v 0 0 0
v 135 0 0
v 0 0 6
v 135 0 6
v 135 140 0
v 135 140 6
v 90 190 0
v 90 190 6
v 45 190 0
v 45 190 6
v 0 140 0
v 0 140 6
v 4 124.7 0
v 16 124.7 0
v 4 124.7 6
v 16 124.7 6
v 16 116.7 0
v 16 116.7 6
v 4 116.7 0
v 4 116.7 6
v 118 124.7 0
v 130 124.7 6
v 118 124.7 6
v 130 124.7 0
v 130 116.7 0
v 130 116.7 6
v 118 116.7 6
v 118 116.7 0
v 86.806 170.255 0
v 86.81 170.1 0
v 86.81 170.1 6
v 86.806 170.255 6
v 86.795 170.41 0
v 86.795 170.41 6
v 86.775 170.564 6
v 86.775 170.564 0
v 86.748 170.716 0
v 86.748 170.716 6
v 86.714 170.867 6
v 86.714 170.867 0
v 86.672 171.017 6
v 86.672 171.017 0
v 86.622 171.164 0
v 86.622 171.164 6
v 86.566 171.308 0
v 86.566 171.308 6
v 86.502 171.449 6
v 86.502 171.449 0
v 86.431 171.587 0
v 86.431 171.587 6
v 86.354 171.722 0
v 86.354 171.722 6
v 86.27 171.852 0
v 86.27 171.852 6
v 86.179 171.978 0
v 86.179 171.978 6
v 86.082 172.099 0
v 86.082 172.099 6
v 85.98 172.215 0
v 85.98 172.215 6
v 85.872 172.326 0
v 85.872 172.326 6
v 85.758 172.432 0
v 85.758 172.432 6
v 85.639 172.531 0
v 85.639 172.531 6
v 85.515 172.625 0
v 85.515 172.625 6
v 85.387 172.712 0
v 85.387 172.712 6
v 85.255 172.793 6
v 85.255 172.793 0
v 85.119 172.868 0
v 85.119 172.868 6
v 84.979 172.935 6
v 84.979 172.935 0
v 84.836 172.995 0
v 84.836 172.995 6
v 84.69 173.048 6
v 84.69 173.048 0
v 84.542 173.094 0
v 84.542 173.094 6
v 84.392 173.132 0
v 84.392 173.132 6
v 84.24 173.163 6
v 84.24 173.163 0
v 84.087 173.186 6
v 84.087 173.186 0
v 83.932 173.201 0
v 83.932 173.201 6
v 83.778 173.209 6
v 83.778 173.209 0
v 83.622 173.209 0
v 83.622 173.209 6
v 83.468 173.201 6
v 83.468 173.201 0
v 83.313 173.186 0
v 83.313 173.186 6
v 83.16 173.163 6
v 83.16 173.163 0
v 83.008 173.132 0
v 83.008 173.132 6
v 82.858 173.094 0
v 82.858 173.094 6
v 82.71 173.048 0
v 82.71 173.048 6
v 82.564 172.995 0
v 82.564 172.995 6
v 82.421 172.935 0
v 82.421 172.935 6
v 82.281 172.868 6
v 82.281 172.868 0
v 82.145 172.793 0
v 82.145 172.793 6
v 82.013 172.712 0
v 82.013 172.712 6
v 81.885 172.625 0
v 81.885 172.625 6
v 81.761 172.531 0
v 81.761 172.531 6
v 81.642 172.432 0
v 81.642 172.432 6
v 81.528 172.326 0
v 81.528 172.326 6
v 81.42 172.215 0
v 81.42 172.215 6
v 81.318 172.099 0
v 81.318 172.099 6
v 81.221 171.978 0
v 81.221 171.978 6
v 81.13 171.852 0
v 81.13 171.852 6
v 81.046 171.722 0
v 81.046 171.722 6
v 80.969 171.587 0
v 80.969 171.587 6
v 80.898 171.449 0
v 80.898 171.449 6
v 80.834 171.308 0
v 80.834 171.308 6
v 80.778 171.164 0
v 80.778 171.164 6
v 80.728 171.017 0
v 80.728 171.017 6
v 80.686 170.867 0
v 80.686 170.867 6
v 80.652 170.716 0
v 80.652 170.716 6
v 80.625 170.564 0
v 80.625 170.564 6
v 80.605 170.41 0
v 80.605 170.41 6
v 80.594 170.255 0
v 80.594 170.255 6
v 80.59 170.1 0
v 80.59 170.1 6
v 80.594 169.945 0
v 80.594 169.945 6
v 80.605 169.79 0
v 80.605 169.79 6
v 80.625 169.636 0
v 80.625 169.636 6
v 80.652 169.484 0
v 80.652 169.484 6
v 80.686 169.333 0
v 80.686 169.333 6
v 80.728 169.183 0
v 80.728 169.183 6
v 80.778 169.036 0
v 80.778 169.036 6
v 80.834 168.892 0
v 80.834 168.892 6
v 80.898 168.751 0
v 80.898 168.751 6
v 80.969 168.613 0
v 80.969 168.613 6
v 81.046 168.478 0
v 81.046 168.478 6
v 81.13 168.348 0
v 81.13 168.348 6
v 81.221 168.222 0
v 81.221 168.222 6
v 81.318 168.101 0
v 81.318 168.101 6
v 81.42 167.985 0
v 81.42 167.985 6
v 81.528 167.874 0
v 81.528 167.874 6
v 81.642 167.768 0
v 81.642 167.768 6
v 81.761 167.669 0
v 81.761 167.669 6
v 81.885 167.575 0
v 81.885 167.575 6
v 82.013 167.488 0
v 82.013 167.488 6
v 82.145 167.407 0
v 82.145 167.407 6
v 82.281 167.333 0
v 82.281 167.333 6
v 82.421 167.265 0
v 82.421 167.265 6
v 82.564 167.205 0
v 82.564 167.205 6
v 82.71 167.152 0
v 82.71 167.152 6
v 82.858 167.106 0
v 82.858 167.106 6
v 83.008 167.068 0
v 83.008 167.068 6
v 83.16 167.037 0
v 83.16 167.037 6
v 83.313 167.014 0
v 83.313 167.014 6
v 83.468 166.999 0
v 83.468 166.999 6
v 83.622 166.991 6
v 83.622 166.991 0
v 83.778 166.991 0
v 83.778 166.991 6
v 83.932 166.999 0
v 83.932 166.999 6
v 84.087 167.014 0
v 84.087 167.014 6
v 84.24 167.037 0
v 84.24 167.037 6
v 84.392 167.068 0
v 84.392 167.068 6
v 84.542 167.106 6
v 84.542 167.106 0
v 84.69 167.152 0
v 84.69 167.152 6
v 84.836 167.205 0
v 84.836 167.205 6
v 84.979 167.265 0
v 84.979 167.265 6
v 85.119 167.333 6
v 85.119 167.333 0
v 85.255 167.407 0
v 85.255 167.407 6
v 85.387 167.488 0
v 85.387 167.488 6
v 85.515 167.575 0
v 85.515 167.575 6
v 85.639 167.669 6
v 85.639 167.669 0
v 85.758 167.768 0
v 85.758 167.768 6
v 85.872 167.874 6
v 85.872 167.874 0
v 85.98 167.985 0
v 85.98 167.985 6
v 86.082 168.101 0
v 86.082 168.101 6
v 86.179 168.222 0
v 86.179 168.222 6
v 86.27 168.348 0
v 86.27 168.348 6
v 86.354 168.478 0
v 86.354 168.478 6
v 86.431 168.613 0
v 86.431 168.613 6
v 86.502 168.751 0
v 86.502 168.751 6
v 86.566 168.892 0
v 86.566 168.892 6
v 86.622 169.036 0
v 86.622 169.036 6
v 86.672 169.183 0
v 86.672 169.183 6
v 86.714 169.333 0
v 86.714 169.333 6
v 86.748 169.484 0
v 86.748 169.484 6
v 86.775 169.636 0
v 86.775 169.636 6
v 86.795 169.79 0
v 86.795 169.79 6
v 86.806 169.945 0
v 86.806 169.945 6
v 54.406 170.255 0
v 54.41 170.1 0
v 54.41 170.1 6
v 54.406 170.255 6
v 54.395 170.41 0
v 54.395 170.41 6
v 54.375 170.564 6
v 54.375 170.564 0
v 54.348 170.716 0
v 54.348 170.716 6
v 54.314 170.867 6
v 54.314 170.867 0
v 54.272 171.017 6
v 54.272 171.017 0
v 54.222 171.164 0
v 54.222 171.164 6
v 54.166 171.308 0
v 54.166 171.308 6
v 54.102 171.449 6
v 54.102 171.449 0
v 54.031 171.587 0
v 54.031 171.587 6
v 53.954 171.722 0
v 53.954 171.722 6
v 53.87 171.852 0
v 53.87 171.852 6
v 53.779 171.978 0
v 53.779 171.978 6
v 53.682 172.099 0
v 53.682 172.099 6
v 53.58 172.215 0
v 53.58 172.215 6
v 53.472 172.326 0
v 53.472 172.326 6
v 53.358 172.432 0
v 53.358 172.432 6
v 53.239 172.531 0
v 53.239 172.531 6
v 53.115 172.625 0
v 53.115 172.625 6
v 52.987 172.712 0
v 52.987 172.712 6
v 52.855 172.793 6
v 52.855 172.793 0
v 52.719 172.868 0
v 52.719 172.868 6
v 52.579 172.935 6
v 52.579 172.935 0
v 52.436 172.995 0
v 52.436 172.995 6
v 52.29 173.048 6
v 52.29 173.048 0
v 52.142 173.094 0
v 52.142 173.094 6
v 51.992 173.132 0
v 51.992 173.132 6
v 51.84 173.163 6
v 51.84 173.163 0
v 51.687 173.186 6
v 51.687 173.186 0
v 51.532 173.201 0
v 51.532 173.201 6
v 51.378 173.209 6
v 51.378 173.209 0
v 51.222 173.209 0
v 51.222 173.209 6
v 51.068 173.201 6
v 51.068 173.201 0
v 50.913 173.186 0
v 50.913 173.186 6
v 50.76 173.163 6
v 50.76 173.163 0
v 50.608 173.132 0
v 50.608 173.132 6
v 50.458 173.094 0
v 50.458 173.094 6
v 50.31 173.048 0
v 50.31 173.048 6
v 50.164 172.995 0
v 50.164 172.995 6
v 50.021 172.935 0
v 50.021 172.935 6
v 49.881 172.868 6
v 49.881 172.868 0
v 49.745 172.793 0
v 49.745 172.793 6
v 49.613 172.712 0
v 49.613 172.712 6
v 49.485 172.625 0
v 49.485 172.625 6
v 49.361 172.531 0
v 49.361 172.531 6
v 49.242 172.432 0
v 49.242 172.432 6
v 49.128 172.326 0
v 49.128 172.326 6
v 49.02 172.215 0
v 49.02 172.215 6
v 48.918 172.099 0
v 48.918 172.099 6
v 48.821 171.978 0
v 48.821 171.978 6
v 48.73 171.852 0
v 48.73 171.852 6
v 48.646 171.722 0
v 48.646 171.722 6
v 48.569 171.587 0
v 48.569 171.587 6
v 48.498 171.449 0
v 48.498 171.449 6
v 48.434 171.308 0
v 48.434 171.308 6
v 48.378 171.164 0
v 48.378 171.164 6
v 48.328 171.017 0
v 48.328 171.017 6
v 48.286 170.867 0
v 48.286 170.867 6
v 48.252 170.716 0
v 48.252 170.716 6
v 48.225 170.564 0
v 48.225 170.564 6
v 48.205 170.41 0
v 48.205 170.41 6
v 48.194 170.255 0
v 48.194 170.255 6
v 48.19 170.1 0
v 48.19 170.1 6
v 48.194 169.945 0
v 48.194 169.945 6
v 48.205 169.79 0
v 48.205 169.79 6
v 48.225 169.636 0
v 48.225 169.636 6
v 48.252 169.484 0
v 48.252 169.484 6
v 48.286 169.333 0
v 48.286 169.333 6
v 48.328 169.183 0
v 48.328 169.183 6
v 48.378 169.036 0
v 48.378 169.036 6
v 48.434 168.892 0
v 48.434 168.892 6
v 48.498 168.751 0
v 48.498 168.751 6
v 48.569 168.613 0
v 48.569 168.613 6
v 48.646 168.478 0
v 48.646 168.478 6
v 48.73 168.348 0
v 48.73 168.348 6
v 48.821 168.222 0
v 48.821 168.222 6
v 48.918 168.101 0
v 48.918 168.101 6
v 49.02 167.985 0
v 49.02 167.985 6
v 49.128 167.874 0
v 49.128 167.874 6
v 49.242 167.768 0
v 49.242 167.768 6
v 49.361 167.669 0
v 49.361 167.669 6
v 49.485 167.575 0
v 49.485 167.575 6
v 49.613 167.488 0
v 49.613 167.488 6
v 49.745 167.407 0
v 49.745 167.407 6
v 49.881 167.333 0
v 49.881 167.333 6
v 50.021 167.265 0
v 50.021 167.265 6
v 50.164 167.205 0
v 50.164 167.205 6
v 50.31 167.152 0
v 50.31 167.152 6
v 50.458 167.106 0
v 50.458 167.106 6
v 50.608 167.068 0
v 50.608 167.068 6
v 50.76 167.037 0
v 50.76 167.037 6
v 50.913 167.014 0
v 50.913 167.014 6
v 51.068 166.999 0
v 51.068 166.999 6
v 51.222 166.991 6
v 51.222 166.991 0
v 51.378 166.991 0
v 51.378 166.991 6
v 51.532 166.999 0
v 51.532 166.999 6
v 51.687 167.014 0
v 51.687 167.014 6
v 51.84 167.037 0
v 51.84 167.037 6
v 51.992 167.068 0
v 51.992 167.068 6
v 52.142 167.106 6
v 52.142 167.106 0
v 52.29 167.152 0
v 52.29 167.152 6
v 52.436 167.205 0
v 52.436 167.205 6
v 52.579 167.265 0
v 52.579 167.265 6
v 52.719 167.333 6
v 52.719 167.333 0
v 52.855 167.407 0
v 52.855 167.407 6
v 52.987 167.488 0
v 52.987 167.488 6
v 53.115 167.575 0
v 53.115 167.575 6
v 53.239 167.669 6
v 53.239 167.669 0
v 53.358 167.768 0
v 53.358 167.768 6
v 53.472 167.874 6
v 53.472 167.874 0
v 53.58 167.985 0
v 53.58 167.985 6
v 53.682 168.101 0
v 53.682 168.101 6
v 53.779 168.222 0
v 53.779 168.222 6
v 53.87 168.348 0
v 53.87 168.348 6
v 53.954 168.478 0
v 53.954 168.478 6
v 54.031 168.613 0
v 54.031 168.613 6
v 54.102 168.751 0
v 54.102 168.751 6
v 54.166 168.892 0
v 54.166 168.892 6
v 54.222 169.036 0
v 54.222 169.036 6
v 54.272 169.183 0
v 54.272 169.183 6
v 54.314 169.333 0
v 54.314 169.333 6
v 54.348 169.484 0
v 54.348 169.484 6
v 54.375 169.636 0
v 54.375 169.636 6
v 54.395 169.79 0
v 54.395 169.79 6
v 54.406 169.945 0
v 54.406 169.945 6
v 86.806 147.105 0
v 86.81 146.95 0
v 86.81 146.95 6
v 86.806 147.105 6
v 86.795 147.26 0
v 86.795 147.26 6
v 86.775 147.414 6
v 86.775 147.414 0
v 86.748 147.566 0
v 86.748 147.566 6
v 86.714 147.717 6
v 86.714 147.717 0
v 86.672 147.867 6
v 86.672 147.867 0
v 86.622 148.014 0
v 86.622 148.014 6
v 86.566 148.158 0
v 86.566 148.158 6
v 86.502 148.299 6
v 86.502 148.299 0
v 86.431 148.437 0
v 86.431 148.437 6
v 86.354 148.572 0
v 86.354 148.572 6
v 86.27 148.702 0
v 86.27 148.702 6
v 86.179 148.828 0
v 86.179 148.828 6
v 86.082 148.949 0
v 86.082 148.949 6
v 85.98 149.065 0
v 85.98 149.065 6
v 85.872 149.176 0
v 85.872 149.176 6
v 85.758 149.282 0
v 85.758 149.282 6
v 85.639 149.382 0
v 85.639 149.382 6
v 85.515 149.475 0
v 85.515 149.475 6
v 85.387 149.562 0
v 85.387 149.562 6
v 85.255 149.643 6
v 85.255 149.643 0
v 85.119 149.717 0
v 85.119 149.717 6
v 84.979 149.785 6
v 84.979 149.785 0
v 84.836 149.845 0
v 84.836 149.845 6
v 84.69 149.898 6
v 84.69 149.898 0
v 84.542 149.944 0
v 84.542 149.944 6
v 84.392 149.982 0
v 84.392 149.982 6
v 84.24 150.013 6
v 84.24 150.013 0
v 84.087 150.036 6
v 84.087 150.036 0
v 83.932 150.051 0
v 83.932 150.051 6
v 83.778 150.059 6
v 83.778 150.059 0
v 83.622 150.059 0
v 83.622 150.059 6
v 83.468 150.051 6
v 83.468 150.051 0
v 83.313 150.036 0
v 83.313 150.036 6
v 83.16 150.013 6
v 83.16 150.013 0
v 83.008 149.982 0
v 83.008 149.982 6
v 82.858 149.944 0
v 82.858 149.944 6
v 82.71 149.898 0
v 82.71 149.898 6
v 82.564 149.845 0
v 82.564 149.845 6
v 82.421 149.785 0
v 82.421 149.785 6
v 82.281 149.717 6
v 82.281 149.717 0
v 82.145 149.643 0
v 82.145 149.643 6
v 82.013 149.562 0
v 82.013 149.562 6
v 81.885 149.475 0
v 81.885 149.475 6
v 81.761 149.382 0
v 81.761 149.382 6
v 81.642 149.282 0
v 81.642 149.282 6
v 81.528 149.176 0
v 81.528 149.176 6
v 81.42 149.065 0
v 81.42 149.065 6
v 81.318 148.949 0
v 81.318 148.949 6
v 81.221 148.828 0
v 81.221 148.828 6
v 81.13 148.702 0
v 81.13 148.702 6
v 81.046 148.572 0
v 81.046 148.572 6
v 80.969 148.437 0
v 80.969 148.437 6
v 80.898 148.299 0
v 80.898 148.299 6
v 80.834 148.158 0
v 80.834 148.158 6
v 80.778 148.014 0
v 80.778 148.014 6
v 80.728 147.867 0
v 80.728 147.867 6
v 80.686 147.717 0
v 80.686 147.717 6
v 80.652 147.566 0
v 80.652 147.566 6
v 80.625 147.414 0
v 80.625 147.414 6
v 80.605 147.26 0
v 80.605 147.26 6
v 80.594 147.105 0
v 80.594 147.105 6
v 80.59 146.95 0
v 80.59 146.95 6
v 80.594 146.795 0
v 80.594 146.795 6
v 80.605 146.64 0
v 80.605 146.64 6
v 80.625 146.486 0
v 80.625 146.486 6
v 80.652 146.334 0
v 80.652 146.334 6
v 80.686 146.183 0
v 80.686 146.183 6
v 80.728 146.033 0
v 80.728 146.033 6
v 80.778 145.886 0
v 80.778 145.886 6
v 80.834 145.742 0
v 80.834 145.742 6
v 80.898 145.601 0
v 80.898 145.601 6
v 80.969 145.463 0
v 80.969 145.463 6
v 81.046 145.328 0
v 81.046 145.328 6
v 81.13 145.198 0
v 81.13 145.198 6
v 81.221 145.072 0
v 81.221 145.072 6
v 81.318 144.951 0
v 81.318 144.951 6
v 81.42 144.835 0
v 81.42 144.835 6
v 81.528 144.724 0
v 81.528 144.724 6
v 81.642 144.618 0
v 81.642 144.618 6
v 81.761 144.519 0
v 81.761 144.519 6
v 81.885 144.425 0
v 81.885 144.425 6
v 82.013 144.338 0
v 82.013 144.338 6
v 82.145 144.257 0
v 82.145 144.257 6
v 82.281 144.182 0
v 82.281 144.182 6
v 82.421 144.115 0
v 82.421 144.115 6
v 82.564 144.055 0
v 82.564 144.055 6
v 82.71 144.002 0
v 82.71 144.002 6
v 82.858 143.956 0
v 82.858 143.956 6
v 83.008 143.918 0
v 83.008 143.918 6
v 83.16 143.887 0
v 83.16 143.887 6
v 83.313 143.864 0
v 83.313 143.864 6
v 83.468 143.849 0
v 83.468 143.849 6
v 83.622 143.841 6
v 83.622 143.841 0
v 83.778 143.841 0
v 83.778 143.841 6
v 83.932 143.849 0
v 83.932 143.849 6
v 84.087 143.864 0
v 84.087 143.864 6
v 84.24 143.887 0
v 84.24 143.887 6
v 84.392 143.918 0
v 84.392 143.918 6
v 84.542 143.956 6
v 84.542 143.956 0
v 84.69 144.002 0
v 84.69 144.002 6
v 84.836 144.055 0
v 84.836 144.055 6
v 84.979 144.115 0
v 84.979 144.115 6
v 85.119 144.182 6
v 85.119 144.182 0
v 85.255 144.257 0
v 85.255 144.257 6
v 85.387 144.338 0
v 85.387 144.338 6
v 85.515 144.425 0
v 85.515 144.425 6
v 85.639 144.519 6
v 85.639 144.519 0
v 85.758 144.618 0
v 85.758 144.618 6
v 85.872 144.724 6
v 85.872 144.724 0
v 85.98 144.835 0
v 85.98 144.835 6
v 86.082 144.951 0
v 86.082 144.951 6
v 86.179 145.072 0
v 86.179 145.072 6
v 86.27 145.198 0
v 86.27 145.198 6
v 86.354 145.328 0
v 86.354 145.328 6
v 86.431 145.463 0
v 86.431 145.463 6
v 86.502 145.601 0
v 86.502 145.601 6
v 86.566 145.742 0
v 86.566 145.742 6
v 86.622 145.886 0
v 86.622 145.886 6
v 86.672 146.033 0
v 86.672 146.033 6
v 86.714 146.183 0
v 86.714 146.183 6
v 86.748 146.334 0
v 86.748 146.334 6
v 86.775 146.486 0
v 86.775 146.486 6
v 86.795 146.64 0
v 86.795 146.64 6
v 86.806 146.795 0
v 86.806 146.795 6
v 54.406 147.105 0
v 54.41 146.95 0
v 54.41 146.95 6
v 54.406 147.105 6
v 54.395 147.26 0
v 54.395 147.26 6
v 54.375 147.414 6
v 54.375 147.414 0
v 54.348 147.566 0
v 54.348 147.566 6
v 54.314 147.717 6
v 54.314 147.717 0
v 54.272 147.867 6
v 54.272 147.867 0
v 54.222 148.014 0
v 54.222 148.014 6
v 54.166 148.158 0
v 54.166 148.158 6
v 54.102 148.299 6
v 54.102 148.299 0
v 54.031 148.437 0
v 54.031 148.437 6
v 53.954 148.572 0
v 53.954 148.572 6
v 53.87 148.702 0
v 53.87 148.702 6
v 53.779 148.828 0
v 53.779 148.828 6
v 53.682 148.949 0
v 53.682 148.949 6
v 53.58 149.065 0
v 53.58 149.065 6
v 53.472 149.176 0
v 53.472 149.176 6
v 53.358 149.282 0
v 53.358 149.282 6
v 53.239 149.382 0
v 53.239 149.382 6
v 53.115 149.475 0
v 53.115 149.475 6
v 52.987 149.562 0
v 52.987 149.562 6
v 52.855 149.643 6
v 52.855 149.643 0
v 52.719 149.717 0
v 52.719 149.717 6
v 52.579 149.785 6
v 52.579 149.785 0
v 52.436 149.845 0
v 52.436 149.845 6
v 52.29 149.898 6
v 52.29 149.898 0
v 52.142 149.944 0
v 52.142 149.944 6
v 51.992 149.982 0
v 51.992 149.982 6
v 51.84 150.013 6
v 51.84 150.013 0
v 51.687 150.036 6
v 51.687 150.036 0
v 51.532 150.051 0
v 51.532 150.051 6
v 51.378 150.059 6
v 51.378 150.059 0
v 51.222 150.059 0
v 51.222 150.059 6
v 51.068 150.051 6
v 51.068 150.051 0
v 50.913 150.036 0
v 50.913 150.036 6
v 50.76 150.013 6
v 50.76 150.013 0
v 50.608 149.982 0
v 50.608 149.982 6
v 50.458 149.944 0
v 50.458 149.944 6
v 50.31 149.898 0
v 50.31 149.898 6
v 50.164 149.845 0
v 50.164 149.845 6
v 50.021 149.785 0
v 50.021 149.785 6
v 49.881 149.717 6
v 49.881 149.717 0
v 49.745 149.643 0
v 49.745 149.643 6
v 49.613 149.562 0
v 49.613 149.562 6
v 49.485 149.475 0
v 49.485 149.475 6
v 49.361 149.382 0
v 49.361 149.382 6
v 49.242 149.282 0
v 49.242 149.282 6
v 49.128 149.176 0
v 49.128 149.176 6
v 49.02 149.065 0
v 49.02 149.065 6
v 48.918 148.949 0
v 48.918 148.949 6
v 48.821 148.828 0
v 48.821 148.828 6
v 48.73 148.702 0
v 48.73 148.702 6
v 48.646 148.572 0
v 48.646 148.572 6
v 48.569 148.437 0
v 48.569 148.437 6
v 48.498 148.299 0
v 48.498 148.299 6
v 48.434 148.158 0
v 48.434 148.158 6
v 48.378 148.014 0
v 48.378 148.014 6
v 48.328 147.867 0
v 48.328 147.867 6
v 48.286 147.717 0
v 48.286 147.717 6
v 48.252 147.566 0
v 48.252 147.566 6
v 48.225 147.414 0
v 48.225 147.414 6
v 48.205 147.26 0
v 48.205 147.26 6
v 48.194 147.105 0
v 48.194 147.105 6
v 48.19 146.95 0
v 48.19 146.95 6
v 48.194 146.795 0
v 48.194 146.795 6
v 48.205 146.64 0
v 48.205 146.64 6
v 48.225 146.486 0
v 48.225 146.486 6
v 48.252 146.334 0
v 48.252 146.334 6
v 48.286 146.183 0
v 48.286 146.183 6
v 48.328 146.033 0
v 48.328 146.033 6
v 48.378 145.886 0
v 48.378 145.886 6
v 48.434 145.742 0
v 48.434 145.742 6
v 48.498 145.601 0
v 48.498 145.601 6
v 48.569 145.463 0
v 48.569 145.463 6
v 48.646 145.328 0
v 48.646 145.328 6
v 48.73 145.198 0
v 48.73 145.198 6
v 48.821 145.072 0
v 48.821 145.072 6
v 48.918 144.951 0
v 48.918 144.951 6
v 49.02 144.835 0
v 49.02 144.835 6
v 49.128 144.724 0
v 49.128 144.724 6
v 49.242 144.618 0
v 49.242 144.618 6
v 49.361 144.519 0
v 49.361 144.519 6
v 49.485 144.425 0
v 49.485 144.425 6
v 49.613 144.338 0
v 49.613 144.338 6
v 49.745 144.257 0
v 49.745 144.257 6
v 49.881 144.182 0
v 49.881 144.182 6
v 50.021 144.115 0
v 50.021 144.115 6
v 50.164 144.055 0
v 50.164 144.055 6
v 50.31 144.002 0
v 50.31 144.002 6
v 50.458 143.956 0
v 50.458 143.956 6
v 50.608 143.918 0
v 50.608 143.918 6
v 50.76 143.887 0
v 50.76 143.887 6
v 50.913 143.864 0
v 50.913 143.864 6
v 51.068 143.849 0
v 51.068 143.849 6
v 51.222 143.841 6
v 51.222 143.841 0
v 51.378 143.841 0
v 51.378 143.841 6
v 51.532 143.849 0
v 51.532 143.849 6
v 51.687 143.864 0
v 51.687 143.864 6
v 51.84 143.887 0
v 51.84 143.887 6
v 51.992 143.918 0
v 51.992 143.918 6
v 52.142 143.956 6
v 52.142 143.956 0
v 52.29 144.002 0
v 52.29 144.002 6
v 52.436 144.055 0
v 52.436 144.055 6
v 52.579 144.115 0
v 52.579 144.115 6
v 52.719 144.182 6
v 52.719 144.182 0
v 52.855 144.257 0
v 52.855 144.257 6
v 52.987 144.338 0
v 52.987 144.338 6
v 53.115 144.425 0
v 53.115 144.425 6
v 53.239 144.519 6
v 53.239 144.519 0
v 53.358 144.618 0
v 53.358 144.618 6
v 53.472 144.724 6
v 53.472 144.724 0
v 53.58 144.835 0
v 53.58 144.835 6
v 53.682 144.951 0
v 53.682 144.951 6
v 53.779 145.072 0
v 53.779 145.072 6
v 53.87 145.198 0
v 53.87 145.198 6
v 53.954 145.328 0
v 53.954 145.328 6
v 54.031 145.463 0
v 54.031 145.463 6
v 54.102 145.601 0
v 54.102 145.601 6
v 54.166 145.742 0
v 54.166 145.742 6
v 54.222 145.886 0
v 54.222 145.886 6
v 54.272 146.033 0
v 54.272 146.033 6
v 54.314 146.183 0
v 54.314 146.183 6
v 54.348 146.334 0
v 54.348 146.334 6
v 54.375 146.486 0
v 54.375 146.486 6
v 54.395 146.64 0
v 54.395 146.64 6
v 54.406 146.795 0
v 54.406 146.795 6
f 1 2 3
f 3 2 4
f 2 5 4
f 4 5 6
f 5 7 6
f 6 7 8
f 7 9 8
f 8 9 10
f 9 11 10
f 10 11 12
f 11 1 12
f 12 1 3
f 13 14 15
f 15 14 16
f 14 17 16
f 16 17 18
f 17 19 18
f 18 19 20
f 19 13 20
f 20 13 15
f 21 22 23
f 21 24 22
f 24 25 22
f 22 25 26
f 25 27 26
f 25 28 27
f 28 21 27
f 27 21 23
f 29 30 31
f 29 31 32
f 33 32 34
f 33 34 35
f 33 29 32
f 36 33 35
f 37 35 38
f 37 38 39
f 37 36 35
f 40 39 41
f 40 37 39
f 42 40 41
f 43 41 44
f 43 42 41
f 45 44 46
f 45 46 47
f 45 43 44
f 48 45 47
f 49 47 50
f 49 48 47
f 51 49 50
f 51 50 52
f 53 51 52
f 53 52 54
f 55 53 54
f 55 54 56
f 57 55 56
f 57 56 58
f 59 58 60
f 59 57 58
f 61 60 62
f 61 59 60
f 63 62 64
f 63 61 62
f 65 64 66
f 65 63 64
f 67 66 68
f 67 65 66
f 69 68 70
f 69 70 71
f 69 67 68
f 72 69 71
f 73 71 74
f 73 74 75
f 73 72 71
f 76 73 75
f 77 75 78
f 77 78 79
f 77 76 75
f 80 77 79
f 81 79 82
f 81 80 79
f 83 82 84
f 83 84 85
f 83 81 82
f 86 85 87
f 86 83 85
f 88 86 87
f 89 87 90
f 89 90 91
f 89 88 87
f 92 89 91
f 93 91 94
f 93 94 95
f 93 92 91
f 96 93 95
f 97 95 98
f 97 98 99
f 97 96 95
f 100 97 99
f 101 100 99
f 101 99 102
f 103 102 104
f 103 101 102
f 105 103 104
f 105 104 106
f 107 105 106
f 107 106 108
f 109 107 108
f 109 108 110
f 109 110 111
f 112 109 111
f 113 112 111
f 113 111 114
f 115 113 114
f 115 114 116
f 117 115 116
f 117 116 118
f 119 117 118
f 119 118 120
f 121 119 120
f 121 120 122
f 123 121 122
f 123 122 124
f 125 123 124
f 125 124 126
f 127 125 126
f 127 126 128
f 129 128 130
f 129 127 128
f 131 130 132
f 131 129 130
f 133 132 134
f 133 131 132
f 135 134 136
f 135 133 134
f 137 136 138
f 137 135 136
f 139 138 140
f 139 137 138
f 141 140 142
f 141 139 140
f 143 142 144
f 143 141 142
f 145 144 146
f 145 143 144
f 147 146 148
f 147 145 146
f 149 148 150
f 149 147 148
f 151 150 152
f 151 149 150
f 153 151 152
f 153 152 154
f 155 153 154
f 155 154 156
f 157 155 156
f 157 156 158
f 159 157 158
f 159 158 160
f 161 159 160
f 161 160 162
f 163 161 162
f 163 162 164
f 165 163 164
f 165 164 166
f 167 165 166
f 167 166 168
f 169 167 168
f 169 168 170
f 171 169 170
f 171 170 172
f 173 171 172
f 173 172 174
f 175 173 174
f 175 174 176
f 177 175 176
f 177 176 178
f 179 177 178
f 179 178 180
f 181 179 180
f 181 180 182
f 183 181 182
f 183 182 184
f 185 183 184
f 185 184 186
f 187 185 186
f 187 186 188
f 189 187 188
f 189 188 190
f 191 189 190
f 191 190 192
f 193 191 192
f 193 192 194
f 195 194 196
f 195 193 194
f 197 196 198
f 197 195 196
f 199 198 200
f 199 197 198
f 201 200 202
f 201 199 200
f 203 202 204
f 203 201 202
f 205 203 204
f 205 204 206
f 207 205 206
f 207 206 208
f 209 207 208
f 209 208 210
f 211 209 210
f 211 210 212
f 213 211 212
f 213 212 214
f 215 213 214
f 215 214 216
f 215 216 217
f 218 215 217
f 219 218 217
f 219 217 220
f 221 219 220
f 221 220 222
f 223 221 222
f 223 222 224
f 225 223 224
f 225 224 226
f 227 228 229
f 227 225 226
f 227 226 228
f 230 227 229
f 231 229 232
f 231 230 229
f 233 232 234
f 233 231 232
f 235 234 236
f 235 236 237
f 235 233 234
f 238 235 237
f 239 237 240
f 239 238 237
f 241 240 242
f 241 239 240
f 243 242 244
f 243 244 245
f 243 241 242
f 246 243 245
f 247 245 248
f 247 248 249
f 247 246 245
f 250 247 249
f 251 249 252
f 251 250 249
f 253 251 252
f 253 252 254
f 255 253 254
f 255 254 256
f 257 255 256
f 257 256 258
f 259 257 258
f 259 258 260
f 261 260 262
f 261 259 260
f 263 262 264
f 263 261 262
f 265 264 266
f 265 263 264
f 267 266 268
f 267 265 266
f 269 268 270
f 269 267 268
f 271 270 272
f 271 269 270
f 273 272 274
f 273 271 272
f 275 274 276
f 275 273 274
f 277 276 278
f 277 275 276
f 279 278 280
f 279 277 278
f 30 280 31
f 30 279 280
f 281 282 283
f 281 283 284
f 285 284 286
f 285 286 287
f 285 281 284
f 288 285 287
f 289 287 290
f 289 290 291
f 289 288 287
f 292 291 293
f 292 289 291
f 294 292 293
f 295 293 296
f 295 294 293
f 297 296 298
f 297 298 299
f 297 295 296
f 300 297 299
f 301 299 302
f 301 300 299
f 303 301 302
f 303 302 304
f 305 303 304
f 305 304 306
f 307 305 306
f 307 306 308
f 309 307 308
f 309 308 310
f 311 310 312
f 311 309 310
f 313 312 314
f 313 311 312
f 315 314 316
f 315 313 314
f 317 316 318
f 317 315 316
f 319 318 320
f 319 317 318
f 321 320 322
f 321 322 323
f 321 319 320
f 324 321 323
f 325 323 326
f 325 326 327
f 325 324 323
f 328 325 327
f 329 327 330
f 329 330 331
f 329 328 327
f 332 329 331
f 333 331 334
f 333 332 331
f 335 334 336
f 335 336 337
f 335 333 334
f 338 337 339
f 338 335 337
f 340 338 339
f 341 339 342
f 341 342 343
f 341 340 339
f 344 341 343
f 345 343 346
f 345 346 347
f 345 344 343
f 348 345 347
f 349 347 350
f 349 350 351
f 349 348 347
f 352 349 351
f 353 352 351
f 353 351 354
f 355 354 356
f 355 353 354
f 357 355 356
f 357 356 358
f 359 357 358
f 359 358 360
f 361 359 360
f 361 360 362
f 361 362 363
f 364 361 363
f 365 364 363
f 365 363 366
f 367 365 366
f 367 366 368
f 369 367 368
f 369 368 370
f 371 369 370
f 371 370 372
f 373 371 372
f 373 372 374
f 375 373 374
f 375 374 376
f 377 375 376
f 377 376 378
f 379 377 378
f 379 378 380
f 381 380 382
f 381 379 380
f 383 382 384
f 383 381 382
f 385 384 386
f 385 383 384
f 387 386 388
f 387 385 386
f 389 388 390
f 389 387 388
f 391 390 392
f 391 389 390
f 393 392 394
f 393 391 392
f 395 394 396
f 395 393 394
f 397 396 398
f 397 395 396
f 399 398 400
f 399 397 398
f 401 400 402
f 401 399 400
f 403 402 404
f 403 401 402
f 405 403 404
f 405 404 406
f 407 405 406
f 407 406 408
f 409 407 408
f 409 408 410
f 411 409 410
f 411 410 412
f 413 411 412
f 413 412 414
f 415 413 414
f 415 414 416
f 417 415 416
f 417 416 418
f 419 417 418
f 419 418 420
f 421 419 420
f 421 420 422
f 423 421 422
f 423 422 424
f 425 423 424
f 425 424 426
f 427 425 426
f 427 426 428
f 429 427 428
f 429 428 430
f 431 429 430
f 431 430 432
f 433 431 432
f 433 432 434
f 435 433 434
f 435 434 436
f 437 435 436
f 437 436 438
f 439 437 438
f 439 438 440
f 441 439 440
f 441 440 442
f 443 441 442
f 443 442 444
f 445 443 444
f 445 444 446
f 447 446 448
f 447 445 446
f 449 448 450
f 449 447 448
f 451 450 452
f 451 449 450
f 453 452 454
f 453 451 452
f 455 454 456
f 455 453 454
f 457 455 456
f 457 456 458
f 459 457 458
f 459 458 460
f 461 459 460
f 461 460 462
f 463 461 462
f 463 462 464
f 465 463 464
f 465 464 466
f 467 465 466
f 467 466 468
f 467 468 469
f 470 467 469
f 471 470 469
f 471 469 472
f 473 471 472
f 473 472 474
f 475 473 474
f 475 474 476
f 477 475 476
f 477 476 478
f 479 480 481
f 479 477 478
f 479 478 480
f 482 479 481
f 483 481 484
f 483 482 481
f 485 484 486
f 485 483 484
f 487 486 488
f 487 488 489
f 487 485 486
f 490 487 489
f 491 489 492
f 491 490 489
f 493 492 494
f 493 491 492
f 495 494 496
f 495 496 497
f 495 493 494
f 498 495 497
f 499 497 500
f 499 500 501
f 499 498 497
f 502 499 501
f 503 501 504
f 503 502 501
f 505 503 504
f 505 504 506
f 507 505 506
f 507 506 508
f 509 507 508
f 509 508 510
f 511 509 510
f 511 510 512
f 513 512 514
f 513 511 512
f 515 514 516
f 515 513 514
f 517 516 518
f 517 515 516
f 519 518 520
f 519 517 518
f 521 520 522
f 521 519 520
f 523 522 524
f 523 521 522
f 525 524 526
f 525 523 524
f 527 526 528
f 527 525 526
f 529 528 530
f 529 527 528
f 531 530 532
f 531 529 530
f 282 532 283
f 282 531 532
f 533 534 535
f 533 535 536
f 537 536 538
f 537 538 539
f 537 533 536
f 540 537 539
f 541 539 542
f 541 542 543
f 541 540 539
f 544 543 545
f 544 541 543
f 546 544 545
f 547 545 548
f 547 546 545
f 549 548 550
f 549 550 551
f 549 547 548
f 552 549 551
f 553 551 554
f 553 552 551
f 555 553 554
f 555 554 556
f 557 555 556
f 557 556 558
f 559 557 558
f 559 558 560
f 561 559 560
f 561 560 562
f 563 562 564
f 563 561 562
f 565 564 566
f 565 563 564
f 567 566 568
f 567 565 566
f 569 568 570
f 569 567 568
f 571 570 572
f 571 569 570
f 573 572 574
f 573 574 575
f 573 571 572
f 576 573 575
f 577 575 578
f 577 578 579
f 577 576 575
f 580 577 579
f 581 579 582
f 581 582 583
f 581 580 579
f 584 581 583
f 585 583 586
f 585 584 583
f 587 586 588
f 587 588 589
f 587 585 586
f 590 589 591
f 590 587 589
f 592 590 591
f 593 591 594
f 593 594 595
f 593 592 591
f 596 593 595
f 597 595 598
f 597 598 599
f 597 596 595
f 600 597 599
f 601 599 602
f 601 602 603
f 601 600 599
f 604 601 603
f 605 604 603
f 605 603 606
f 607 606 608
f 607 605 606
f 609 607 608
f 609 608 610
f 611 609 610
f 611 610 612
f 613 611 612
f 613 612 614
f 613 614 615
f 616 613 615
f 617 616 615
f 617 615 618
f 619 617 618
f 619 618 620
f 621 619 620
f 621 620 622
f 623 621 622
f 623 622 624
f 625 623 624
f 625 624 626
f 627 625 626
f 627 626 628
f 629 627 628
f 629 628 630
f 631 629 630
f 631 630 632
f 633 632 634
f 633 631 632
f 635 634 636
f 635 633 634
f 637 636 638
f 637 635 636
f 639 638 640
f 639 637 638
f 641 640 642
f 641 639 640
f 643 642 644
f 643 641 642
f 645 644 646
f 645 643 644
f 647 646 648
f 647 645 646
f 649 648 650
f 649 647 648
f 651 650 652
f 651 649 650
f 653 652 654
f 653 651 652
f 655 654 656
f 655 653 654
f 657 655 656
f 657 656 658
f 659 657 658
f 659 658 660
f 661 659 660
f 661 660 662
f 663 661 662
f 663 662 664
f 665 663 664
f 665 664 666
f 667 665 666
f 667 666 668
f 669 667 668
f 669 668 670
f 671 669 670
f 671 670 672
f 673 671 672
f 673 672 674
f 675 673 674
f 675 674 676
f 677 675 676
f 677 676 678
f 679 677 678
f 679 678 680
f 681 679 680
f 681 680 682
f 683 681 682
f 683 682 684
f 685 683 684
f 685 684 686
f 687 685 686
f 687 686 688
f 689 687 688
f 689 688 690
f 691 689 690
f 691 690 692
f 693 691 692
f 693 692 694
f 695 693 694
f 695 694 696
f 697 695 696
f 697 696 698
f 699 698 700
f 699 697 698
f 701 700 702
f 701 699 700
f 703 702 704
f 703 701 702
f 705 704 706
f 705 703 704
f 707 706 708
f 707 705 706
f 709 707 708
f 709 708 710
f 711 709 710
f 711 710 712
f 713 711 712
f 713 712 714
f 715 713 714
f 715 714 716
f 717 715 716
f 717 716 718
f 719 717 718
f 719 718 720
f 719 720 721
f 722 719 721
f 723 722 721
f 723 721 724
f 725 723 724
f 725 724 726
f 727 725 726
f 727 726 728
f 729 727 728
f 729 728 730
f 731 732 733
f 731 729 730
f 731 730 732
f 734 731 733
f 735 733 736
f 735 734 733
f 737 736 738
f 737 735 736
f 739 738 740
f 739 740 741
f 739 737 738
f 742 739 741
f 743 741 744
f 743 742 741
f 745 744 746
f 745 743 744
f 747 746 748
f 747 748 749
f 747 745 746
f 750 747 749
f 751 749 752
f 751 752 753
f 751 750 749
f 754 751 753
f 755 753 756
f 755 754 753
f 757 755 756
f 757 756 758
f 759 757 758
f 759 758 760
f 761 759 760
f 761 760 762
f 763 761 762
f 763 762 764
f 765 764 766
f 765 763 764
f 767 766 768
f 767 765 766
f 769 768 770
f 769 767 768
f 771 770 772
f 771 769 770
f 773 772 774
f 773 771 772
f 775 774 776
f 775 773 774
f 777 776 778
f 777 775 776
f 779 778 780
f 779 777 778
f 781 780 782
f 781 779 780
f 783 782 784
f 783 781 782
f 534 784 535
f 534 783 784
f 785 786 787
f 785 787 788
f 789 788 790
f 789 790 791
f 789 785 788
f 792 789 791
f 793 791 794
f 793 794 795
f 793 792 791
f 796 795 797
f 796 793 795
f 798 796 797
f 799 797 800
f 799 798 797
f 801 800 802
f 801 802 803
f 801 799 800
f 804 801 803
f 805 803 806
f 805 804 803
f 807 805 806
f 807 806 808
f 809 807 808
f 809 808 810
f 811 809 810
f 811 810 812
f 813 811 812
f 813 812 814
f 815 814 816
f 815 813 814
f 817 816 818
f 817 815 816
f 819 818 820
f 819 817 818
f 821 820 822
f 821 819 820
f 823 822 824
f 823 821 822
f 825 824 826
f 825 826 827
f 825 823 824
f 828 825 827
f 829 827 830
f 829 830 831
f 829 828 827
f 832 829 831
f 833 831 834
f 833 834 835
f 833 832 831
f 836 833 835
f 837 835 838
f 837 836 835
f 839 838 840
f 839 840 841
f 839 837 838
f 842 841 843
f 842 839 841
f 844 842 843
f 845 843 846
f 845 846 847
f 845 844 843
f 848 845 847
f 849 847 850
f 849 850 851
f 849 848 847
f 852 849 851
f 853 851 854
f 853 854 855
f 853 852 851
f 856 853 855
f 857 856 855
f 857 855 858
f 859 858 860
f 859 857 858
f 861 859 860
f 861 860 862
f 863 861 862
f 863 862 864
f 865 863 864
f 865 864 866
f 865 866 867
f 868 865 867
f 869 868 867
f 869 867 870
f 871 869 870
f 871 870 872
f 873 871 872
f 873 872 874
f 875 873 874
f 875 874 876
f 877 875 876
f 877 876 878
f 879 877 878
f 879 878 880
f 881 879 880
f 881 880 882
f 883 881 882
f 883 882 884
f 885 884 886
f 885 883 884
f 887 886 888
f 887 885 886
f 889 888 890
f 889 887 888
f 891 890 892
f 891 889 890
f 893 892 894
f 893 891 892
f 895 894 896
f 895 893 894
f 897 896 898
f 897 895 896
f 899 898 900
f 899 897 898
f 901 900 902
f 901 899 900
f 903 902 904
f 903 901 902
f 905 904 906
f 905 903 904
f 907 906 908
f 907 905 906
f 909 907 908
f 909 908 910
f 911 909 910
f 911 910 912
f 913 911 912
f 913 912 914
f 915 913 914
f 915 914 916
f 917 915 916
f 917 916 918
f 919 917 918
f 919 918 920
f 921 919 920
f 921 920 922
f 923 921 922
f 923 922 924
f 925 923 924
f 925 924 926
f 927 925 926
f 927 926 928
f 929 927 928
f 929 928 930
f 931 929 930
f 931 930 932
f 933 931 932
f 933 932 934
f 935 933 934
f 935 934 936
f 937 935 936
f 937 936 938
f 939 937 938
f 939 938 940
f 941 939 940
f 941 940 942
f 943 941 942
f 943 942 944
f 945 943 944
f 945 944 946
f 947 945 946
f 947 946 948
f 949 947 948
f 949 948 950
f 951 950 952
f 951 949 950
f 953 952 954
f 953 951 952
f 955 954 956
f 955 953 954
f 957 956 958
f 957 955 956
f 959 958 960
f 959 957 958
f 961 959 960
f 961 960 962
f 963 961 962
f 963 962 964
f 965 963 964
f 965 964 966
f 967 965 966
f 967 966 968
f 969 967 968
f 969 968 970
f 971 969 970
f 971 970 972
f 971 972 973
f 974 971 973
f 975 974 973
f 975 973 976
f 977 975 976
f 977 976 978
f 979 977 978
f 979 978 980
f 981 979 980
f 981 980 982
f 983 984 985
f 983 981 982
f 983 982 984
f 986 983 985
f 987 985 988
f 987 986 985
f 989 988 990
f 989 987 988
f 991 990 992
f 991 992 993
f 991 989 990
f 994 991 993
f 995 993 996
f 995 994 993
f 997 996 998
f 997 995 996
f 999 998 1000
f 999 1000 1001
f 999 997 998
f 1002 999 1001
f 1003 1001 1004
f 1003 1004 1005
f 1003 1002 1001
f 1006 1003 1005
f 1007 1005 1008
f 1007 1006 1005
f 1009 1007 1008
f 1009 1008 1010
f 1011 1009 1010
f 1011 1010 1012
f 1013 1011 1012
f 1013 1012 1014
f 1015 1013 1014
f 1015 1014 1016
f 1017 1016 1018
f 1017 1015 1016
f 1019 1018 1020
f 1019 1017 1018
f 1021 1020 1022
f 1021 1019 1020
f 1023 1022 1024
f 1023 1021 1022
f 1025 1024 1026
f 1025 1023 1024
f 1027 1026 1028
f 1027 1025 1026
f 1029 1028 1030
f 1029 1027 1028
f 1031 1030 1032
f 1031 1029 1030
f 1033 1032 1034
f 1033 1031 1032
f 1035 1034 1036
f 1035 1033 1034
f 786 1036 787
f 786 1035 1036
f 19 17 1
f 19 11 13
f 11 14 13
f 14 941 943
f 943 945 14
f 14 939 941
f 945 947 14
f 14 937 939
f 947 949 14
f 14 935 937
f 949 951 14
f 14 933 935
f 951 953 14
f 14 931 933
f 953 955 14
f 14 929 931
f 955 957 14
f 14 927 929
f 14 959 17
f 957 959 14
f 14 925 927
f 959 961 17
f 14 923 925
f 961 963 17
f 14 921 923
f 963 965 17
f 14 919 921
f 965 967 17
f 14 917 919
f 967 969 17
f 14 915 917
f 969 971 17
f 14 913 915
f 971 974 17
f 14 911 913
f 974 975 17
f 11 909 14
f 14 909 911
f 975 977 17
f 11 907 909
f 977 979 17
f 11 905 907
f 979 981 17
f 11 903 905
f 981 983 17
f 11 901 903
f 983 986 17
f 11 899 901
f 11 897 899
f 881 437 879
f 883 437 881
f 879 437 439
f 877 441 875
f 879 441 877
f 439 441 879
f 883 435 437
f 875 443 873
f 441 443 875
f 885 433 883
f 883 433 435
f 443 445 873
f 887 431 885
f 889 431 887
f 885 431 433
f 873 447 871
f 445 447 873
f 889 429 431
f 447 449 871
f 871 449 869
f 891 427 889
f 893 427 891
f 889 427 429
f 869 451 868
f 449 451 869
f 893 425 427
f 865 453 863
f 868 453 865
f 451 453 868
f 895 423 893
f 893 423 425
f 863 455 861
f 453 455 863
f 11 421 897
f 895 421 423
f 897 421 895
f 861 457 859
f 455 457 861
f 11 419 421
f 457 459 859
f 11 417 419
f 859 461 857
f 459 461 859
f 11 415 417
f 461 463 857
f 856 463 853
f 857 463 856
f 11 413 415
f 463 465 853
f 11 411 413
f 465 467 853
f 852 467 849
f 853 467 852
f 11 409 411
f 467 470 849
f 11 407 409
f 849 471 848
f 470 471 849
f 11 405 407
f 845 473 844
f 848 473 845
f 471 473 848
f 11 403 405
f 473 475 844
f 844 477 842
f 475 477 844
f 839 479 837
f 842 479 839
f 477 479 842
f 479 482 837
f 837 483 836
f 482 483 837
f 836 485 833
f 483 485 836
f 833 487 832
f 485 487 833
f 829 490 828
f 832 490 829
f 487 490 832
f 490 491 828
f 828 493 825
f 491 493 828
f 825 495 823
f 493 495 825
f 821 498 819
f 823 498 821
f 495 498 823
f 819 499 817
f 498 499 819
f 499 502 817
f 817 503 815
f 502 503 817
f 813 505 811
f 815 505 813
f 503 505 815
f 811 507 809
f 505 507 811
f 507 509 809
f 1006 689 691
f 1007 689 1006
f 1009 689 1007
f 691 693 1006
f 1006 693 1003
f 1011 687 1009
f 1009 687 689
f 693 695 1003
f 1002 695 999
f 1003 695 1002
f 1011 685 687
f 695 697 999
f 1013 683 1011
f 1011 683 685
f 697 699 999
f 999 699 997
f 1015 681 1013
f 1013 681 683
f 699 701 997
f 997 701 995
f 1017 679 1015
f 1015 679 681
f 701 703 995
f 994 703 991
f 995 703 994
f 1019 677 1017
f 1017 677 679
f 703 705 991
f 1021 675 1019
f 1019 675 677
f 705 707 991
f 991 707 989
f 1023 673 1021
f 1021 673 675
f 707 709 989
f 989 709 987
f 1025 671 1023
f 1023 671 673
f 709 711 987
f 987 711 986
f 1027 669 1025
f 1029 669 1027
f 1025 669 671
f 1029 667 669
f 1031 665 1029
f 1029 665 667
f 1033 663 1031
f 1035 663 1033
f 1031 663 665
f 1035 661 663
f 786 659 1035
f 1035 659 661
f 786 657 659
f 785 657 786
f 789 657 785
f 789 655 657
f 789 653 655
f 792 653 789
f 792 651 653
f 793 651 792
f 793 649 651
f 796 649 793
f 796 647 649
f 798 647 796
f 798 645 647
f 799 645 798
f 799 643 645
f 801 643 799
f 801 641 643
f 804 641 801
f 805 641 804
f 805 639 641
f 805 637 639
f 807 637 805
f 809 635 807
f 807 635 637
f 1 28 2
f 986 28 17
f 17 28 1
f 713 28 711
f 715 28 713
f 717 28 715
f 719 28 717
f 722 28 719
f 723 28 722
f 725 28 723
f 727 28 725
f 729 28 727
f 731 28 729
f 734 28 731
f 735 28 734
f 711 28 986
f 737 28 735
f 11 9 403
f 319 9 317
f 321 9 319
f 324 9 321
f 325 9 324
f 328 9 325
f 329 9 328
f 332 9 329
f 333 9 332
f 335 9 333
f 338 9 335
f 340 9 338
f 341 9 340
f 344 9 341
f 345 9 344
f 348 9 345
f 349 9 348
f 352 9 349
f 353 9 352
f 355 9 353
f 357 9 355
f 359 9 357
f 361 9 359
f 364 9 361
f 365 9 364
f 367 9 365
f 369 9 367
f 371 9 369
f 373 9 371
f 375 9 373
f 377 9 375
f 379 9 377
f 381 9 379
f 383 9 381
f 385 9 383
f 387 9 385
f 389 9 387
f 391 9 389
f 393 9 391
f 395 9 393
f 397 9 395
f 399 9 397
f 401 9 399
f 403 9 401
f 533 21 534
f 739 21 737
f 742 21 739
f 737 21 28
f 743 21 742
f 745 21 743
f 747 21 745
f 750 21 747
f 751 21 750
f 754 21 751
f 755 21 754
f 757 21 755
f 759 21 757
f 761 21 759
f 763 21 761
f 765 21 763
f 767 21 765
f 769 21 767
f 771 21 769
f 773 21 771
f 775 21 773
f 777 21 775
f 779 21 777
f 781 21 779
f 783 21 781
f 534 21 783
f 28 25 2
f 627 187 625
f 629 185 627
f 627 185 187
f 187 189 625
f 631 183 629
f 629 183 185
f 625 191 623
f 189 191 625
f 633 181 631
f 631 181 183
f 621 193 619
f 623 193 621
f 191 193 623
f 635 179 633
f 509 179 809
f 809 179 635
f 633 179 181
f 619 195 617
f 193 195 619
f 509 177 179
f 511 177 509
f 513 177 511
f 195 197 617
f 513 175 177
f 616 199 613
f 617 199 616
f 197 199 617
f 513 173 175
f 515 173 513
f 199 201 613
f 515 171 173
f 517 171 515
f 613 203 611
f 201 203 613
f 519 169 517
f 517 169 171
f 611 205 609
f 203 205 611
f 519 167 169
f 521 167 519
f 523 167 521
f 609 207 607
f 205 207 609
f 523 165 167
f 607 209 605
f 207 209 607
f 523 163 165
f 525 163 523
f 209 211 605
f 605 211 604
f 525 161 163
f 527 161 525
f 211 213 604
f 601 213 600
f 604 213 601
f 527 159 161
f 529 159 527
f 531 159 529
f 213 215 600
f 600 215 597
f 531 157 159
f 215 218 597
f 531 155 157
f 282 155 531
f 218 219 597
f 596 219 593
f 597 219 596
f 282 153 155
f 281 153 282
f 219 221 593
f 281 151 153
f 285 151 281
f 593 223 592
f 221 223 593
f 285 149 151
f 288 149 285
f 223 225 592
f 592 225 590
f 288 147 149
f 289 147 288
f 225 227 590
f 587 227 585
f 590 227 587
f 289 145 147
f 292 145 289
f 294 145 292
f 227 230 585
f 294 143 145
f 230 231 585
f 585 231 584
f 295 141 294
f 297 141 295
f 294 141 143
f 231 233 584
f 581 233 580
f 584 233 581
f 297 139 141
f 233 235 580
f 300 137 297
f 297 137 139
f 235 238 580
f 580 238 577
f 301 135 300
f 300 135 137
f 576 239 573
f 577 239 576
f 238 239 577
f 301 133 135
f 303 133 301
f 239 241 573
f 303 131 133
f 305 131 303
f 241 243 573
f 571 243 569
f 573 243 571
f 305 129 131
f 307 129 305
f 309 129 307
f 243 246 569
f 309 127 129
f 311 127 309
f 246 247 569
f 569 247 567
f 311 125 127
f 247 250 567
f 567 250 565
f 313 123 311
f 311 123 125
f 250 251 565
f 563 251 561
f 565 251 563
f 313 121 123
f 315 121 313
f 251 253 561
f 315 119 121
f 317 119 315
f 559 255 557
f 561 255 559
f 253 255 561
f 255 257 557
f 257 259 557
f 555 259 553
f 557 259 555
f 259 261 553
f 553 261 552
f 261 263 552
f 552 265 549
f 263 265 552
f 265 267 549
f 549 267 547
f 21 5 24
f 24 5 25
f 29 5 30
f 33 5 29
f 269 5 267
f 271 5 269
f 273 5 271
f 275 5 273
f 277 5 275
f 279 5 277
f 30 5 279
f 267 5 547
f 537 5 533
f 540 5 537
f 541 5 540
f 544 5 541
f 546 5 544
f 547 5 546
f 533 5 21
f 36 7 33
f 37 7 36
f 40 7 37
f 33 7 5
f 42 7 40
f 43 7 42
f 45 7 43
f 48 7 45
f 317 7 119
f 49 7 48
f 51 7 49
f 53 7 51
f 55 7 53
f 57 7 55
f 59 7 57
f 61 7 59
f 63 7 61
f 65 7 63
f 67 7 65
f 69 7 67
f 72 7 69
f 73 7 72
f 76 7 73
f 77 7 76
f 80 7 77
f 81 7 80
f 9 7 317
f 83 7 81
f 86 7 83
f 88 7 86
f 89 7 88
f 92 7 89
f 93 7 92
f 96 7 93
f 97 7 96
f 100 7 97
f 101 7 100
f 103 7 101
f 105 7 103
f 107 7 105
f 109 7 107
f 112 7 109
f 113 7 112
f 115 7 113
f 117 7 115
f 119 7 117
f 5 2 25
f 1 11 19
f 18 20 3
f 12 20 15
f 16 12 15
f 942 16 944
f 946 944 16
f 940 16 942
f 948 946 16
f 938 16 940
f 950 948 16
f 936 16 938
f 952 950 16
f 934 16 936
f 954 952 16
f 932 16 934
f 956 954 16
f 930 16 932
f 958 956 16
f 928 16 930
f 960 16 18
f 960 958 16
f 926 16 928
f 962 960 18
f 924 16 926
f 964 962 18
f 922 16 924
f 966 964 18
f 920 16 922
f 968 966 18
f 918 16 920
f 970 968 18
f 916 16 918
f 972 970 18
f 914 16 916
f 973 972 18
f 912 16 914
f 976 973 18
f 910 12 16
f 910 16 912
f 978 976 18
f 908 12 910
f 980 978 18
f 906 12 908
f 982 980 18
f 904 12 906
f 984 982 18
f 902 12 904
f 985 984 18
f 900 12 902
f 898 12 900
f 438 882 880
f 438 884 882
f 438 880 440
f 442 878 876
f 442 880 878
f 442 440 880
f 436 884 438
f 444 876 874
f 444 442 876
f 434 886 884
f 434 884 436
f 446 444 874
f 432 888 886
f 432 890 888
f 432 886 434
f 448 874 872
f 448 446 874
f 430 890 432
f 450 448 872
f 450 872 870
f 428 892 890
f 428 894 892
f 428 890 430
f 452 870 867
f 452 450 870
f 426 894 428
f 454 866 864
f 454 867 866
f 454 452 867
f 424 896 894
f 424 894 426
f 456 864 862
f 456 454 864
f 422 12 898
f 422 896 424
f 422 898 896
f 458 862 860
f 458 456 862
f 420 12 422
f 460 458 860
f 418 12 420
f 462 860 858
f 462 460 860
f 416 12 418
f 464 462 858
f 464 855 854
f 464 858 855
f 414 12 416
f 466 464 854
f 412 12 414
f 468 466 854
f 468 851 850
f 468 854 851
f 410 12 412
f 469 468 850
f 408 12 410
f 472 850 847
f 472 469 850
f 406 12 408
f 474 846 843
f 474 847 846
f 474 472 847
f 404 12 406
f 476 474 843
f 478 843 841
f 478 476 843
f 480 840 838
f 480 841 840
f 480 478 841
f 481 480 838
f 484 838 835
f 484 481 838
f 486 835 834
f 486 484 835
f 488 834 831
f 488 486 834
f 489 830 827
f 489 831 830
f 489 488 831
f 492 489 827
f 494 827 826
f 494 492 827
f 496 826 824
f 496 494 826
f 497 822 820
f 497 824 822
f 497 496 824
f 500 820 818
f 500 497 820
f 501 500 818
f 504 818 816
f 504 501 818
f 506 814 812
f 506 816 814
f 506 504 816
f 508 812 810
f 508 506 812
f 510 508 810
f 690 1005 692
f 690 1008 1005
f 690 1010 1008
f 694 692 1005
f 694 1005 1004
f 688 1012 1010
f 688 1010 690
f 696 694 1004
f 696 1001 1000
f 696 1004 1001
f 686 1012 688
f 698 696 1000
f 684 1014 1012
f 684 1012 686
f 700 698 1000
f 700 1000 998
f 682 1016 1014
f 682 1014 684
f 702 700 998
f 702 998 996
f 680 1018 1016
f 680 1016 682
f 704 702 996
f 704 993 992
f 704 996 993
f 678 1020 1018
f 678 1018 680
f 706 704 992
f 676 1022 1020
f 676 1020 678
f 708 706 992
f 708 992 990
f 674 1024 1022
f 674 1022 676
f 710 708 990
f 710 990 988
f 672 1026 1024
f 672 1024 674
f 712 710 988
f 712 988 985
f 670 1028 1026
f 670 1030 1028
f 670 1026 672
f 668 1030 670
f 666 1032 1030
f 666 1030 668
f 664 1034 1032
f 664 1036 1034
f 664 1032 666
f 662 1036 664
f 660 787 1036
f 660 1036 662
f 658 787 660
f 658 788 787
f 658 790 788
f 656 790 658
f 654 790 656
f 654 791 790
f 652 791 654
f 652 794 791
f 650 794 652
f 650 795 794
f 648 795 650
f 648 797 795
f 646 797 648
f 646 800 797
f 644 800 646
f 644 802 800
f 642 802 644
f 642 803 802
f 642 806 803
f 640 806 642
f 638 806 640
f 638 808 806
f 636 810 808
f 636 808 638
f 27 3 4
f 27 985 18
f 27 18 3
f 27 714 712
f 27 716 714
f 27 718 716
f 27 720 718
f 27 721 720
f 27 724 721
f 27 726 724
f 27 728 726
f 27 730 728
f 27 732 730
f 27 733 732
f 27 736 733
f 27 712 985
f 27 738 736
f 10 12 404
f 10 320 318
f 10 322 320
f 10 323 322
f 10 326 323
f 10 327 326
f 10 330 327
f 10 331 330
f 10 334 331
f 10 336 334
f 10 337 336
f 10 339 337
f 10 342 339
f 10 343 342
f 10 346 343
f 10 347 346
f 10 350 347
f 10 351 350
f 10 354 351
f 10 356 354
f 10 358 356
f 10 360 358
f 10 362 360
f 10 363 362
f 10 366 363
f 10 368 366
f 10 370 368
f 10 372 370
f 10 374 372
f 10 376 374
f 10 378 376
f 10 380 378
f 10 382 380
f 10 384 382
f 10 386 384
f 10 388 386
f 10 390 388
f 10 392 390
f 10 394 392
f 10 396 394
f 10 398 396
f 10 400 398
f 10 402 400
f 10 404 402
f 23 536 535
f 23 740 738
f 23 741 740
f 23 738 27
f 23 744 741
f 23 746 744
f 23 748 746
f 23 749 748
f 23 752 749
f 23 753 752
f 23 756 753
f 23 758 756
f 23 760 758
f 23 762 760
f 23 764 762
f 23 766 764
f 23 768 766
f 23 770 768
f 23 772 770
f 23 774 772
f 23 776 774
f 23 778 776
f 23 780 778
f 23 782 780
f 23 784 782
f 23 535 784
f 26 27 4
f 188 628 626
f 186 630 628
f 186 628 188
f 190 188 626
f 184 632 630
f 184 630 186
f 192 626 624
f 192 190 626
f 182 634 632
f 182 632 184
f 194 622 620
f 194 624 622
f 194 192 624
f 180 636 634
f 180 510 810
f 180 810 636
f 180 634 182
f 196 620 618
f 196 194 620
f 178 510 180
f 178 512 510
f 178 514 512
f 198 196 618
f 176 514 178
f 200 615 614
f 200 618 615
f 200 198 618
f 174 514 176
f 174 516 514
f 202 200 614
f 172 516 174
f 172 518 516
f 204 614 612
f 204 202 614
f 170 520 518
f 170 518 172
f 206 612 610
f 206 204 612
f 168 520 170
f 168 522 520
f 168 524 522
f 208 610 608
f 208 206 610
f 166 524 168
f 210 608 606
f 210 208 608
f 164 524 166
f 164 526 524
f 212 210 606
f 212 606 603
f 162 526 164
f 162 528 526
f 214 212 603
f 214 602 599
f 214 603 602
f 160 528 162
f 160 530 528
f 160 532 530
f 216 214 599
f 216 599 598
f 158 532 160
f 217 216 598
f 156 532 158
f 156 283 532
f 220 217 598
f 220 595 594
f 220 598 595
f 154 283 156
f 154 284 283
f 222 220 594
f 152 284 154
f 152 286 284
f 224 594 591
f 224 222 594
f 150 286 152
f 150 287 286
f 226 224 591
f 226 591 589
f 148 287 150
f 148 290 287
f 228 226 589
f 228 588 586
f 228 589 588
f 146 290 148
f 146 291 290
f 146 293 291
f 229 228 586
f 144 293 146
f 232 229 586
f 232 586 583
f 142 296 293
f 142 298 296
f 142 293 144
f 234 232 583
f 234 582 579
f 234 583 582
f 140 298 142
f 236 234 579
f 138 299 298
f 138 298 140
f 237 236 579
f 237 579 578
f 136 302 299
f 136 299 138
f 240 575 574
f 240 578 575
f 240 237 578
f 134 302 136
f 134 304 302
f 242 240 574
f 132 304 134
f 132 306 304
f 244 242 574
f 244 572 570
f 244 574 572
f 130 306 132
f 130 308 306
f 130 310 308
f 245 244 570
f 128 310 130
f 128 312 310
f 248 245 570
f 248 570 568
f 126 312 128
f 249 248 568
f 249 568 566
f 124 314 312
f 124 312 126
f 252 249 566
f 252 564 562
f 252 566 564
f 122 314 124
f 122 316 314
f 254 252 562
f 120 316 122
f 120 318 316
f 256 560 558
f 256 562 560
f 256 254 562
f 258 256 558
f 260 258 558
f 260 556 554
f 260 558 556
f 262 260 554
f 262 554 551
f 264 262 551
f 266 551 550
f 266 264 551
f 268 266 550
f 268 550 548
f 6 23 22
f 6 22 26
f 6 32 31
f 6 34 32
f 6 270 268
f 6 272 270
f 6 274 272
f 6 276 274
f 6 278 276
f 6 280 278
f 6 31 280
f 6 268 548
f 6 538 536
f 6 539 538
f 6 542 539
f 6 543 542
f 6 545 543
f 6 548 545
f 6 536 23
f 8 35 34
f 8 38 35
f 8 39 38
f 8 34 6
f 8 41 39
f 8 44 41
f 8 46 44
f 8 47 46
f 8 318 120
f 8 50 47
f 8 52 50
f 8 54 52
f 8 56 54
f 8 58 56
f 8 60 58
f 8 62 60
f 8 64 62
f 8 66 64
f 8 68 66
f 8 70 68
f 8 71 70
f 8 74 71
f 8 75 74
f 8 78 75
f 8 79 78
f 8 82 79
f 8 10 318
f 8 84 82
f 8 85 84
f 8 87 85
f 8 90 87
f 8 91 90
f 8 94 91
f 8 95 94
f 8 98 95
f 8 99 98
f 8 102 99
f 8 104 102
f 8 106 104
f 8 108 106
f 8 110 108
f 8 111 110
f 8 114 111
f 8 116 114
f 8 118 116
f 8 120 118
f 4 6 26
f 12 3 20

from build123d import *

# Parameters (mm, degrees)
SKETCH_R      = 3.11
SKETCH_W      = 12
SKETCH_H      = 8
EXTRUDE_DEPTH = 6


with BuildPart() as part:
    # Sketch → Extrude (new body)
    with BuildSketch(Plane.XY):
        Polygon((0, 0), (135, 0), (135, 140), (90, 190), (45, 190), (0, 140), align=None)
        with Locations((51.3, 146.95)):
            Circle(SKETCH_R, mode=Mode.SUBTRACT)
        with Locations((83.7, 146.95)):
            Circle(SKETCH_R, mode=Mode.SUBTRACT)
        with Locations((51.3, 170.1)):
            Circle(SKETCH_R, mode=Mode.SUBTRACT)
        with Locations((83.7, 170.1)):
            Circle(SKETCH_R, mode=Mode.SUBTRACT)
        with Locations((124, 120.7)):
            Rectangle(SKETCH_W, SKETCH_H, mode=Mode.SUBTRACT)
        with Locations((10, 120.7)):
            Rectangle(SKETCH_W, SKETCH_H, mode=Mode.SUBTRACT)
    extrude(amount=EXTRUDE_DEPTH)


solid = part.part
